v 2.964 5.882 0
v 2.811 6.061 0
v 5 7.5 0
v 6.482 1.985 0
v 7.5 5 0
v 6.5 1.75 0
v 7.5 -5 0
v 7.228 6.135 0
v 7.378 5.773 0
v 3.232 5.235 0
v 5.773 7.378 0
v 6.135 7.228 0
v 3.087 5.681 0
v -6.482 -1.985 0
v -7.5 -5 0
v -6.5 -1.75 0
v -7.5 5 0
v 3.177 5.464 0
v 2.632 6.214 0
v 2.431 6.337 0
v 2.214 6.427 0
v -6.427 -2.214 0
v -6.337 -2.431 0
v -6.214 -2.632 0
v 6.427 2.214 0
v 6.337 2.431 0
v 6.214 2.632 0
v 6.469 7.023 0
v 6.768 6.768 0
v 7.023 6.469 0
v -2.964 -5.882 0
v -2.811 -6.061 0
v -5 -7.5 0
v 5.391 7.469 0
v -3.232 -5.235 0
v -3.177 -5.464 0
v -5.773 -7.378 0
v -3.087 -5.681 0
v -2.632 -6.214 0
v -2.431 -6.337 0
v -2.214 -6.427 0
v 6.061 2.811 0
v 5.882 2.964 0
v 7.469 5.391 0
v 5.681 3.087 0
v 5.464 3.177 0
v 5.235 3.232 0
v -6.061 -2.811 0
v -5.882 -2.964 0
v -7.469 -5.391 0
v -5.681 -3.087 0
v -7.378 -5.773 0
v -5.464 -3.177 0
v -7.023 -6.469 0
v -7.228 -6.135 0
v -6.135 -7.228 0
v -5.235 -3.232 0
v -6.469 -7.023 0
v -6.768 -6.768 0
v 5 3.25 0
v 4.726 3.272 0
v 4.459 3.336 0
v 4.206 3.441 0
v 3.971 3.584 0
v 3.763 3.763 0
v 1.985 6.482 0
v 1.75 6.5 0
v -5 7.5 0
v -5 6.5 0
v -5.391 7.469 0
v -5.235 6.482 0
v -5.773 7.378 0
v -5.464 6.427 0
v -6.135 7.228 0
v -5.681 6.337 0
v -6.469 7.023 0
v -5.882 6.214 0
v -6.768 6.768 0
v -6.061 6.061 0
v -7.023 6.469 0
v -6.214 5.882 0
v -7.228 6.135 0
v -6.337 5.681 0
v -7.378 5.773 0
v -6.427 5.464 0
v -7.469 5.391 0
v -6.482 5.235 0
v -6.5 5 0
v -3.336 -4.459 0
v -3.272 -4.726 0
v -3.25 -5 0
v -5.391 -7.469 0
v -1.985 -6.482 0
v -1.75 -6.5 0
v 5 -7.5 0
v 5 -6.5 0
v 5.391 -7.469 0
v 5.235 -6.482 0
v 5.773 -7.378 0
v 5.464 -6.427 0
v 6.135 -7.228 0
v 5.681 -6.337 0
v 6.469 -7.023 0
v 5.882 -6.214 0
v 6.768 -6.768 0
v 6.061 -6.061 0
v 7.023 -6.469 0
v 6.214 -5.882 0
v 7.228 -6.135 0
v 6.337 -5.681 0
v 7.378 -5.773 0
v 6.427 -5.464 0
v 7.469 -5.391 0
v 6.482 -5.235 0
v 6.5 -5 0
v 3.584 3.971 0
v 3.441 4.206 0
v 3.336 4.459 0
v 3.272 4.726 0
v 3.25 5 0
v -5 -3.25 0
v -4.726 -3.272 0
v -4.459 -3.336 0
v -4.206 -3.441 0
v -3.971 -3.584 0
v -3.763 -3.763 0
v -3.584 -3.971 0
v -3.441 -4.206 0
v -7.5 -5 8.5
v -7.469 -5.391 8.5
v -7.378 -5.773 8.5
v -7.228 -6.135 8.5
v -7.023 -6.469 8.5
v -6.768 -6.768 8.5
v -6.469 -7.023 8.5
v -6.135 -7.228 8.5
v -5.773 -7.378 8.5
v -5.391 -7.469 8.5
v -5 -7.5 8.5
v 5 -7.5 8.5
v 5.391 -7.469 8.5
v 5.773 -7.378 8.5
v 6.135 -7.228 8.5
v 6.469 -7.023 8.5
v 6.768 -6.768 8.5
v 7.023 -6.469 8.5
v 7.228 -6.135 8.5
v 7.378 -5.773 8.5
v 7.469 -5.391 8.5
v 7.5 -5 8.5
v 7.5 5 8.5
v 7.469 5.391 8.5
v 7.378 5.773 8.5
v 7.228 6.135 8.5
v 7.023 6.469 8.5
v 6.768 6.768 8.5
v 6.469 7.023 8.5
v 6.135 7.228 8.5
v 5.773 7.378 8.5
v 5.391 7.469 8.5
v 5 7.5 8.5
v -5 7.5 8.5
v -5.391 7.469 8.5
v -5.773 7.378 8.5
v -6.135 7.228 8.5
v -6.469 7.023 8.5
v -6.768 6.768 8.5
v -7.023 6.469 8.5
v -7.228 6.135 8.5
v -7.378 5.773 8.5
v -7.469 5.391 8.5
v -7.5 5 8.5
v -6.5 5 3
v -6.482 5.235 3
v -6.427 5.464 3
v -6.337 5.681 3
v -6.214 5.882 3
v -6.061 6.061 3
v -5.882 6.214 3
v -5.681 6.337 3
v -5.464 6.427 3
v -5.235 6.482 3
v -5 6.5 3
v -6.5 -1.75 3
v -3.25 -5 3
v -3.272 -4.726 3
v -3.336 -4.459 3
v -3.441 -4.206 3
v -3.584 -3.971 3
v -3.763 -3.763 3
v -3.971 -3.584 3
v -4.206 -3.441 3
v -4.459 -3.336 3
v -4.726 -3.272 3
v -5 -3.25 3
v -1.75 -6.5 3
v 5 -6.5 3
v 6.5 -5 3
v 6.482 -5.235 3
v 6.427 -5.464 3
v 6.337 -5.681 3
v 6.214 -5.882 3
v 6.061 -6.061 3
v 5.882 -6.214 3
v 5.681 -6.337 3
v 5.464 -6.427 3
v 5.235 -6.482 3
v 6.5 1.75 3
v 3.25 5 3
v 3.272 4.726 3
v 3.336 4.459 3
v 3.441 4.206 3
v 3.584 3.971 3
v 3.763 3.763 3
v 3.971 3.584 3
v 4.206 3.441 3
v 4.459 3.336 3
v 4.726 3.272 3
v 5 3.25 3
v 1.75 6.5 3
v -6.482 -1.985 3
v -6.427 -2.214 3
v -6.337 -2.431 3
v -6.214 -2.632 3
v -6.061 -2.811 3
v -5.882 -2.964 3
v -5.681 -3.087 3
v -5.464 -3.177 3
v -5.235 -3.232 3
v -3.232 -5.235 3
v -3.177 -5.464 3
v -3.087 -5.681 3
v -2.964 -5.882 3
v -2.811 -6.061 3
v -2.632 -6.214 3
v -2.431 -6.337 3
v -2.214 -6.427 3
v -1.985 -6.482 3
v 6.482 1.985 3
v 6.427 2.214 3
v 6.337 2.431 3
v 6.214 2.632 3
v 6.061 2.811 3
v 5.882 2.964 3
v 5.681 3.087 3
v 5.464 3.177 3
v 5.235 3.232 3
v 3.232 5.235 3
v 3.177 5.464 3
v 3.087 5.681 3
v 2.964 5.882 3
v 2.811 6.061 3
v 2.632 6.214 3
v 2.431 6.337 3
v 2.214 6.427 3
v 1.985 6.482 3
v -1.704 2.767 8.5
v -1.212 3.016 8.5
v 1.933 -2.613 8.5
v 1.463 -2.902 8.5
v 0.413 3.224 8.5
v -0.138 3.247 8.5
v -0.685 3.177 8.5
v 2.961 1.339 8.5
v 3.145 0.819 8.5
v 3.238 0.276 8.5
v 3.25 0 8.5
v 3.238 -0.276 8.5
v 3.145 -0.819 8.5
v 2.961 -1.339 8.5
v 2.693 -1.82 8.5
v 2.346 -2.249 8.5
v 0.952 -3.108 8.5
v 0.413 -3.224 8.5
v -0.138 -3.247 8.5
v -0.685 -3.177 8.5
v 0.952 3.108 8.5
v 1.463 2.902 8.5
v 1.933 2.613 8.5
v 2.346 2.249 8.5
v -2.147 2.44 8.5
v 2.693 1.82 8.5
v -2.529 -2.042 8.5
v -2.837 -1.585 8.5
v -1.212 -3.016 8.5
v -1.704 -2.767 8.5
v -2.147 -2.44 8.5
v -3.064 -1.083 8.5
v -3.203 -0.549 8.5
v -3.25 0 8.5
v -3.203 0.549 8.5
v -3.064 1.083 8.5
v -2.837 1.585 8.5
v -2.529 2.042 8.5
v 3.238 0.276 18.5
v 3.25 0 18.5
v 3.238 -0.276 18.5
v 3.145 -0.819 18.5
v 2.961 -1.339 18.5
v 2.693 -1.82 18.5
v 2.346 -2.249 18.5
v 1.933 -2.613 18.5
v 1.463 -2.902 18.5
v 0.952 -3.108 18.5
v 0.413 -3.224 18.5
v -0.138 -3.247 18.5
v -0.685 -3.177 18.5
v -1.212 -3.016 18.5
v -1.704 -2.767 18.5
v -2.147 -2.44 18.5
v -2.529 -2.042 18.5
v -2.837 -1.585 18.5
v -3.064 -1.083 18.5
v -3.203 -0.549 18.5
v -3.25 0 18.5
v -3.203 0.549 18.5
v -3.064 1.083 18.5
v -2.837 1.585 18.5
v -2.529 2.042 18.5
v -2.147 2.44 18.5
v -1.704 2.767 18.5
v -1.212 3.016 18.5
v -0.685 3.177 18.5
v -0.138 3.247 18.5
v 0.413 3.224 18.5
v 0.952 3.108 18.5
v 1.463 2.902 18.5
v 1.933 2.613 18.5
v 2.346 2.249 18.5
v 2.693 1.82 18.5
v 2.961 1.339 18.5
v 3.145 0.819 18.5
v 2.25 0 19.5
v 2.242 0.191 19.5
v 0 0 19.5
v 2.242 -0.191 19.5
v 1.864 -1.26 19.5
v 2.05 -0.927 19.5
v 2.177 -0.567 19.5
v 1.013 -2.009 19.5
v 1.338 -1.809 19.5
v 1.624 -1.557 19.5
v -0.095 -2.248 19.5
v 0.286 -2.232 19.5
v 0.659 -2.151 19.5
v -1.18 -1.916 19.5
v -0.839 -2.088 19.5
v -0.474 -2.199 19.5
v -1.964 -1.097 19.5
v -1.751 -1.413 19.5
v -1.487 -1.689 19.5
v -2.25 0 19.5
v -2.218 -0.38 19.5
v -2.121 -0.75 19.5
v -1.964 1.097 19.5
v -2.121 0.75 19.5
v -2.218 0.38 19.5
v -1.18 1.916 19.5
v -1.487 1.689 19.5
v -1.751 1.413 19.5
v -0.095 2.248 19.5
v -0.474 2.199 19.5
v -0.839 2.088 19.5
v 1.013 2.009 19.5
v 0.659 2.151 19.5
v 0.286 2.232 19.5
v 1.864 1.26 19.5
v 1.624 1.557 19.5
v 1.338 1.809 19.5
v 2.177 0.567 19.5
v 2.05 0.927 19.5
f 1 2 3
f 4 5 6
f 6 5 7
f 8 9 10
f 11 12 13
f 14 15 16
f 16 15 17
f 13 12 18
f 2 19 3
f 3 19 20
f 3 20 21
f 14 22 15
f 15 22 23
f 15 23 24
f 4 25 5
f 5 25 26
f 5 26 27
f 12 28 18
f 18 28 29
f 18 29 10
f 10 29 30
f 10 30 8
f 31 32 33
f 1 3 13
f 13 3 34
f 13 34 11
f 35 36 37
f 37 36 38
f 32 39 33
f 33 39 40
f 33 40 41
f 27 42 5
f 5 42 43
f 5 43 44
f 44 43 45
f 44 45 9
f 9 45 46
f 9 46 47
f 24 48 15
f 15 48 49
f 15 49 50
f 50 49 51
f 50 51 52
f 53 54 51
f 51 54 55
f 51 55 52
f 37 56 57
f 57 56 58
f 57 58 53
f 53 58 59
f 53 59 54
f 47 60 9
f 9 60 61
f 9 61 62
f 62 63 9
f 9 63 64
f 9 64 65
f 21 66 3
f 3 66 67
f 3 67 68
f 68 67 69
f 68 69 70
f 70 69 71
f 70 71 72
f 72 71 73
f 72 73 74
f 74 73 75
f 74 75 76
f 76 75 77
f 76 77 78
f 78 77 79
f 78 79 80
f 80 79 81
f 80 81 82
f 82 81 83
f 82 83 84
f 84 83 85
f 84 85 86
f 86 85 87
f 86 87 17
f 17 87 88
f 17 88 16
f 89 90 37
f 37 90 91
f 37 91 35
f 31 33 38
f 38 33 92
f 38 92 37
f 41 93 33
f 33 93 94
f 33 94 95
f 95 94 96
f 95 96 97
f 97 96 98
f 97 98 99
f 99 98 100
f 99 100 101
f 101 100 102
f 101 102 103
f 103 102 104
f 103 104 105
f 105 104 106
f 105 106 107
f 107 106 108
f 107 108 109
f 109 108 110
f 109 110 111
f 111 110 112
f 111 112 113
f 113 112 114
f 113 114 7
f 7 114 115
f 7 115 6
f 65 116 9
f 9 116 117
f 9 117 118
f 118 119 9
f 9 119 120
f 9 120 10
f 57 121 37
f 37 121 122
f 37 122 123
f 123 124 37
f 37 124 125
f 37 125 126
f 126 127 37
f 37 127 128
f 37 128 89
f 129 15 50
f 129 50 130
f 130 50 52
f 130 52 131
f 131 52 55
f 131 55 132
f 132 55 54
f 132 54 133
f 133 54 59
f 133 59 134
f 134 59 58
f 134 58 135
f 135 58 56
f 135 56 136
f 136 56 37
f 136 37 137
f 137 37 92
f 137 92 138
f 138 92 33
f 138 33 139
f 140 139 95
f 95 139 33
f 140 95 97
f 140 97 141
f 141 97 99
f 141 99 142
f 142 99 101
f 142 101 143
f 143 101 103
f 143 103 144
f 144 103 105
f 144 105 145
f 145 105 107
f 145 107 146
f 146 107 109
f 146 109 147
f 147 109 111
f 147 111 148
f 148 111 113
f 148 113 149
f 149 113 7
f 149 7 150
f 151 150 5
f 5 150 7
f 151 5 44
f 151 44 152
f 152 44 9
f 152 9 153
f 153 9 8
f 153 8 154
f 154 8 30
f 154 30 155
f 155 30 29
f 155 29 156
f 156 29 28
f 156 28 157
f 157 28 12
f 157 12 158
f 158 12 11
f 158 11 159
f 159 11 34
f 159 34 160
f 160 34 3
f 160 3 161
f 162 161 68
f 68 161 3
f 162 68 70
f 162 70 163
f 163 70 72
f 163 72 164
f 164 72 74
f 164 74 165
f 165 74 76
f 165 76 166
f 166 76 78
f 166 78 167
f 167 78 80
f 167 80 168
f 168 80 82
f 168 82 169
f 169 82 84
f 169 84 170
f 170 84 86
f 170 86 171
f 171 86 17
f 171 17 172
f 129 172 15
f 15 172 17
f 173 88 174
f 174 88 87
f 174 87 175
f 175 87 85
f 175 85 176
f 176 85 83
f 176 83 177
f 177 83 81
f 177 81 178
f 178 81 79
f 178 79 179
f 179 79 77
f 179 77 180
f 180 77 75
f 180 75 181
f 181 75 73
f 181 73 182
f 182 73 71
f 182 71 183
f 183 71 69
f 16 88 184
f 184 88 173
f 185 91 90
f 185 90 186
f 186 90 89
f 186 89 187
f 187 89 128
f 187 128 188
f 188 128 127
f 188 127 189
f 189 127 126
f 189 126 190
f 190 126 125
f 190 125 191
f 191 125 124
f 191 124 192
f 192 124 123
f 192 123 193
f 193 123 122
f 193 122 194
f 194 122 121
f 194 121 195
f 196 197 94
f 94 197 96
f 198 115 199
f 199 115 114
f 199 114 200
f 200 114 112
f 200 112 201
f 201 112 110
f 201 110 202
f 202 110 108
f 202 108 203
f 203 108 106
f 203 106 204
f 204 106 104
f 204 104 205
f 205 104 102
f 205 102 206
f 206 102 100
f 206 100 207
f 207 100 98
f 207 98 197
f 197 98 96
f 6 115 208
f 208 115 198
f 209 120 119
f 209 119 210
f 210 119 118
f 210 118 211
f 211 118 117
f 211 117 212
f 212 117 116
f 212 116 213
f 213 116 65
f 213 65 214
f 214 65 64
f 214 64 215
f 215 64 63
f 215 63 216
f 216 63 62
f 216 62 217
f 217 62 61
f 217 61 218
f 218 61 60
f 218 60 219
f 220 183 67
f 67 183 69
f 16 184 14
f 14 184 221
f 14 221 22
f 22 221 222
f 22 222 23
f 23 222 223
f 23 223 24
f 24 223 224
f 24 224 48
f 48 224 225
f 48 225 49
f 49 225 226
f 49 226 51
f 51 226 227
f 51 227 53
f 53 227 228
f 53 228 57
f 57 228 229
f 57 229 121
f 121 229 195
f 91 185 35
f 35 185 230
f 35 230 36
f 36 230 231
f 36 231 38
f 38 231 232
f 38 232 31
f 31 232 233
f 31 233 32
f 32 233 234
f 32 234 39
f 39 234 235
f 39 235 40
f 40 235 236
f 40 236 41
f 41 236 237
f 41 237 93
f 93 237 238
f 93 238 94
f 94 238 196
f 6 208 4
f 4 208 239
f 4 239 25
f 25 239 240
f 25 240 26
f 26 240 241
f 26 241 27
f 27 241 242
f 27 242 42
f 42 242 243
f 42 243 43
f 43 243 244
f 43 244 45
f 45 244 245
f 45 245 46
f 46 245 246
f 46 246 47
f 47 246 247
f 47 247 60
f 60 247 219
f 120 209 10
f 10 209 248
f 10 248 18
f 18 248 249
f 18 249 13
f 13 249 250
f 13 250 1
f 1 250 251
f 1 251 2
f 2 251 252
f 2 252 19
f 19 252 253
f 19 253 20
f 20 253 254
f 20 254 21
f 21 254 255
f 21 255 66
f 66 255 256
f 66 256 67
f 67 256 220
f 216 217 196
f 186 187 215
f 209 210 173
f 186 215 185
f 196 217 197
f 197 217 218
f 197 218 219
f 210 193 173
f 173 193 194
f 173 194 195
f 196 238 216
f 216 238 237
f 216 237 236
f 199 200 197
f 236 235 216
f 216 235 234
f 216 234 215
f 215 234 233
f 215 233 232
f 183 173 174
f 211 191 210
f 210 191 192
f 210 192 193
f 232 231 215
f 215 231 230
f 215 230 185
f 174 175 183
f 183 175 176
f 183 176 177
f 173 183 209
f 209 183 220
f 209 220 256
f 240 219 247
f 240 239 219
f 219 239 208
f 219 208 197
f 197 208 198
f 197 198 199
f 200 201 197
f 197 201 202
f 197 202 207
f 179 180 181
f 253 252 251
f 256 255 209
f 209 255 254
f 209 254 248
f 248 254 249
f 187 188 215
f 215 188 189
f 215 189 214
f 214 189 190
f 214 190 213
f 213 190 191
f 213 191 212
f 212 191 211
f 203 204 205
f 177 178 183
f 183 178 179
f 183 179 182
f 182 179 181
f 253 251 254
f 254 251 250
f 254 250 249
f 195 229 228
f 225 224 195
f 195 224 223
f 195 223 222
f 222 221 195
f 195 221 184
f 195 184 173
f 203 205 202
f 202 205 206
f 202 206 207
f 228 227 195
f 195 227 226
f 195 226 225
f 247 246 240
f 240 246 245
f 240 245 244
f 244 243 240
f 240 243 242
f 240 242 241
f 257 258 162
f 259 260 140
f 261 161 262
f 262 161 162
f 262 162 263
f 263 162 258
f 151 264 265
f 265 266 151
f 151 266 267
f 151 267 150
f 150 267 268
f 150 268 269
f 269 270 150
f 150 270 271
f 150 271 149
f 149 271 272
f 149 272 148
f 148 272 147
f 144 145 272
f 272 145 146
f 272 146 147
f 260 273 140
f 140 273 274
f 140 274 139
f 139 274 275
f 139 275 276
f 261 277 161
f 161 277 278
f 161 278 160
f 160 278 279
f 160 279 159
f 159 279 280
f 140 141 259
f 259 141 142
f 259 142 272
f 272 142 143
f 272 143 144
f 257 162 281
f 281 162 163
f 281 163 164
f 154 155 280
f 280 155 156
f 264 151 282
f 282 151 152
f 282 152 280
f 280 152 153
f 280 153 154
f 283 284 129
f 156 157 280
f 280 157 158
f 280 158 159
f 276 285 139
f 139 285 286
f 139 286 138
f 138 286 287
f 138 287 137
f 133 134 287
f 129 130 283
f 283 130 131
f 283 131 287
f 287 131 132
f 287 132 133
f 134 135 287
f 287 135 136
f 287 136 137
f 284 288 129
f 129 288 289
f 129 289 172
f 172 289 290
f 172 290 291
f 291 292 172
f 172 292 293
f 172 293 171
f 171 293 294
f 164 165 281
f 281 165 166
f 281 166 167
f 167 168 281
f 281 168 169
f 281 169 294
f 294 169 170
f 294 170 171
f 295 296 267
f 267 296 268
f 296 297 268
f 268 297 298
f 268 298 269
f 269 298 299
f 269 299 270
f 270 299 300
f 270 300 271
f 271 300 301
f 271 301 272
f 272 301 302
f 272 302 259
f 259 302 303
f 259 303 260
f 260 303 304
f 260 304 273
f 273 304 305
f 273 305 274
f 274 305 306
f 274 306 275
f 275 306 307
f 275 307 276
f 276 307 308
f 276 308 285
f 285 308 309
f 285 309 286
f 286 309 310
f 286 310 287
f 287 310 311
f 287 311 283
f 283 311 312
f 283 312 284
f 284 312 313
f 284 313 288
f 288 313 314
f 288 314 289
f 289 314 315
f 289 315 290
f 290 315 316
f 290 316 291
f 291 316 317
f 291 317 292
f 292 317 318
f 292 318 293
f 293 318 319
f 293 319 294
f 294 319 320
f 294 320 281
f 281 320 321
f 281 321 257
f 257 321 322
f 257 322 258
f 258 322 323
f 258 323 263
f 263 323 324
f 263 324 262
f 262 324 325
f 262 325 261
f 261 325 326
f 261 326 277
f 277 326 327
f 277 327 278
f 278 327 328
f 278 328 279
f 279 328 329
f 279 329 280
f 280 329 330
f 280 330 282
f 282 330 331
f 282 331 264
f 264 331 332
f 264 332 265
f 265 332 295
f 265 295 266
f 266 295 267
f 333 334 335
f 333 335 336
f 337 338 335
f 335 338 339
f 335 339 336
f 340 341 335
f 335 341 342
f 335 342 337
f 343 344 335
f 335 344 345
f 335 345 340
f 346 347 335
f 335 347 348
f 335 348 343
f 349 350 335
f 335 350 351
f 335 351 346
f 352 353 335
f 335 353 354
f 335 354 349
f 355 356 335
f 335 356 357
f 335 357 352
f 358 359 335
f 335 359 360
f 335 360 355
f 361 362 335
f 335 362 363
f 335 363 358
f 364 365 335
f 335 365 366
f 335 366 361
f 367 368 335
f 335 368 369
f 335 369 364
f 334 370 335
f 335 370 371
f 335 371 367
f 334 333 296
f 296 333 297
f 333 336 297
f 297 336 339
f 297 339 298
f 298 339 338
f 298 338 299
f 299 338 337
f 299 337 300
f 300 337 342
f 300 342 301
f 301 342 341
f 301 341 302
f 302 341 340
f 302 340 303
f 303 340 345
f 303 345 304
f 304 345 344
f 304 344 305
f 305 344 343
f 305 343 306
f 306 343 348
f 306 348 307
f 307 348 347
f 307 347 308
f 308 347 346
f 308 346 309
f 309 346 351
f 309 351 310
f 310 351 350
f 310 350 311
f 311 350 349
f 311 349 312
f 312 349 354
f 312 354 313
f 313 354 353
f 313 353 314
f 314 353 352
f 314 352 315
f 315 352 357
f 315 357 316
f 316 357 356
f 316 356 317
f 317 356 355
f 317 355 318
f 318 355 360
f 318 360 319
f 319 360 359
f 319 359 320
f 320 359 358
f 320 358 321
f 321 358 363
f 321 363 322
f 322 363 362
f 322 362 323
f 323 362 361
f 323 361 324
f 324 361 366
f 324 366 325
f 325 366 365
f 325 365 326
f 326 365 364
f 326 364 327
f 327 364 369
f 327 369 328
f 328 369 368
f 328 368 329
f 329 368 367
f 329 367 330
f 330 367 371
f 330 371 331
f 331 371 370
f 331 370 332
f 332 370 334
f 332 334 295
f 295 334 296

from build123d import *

# Parameters (mm, degrees)
BOSS_EXTRUDE1_DEPTH = 3
FILLET1_R           = 1.5
BOSS_EXTRUDE2_DEPTH = 5.5
SKETCH4_R           = 3.25
BOSS_EXTRUDE3_DEPTH = 11
CHAMFER1_SIZE       = 1


with BuildPart() as part:
    # Sketch1 → Boss-Extrude1 (new body)
    with BuildSketch(Plane.XY):
        with BuildLine():
            Line((5, -7.5), (-5, -7.5))
            ThreePointArc((-5, -7.5), (-6.767766953, -6.767766953), (-7.5, -5))
            Line((-7.5, -5), (-7.5, 5))
            ThreePointArc((-7.5, 5), (-6.767766953, 6.767766953), (-5, 7.5))
            Line((-5, 7.5), (5, 7.5))
            ThreePointArc((5, 7.5), (6.767766953, 6.767766953), (7.5, 5))
            Line((7.5, 5), (7.5, -5))
            ThreePointArc((7.5, -5), (6.767766953, -6.767766953), (5, -7.5))
        make_face()
        with BuildLine():
            Line((3.25, 5), (3.25, 6.5))
            Line((3.25, 6.5), (-5, 6.5))
            ThreePointArc((-5, 6.5), (-6.060660172, 6.060660172), (-6.5, 5))
            Line((-6.5, 5), (-6.5, -3.25))
            Line((-6.5, -3.25), (-5, -3.25))
            ThreePointArc((-5, -3.25), (-3.762563133, -3.762563133), (-3.25, -5))
            Line((-3.25, -5), (-3.25, -6.5))
            Line((-3.25, -6.5), (5, -6.5))
            ThreePointArc((5, -6.5), (6.060660172, -6.060660172), (6.5, -5))
            Line((6.5, -5), (6.5, 3.25))
            Line((6.5, 3.25), (5, 3.25))
            ThreePointArc((5, 3.25), (3.762563133, 3.762563133), (3.25, 5))
        make_face(mode=Mode.SUBTRACT)
    extrude(amount=BOSS_EXTRUDE1_DEPTH)

    # Fillet1
    fillet1_edges = [part.edges().sort_by_distance(p)[0] for p in [
        (-6.5, -3.25, 1.5),
        (-3.25, -6.5, 1.5),
        (6.5, 3.25, 1.5),
        (3.25, 6.5, 1.5),
    ]]
    fillet(fillet1_edges, radius=FILLET1_R - 0.0001)  # a hair under: the kernel refuses the full size

    # Sketch3 → Boss-Extrude2 (add)
    with BuildSketch(Plane.XY.offset(3)):
        with BuildLine():
            Line((-5, -7.5), (5, -7.5))
            ThreePointArc((5, -7.5), (6.767766953, -6.767766953), (7.5, -5))
            Line((7.5, -5), (7.5, 5))
            ThreePointArc((7.5, 5), (6.767766953, 6.767766953), (5, 7.5))
            Line((5, 7.5), (-5, 7.5))
            ThreePointArc((-5, 7.5), (-6.767766953, 6.767766953), (-7.5, 5))
            Line((-7.5, 5), (-7.5, -5))
            ThreePointArc((-7.5, -5), (-6.767766953, -6.767766953), (-5, -7.5))
        make_face()
    extrude(amount=BOSS_EXTRUDE2_DEPTH)

    # Sketch4 → Boss-Extrude3 (add)
    with BuildSketch(Plane.XY.offset(8.5)):
        Circle(SKETCH4_R)
    extrude(amount=BOSS_EXTRUDE3_DEPTH)

    # Chamfer1
    chamfer1_edges = [part.edges().sort_by_distance(p)[0] for p in [
        (-3.25, 0, 19.5),
    ]]
    chamfer(chamfer1_edges, length=CHAMFER1_SIZE)


solid = part.part
